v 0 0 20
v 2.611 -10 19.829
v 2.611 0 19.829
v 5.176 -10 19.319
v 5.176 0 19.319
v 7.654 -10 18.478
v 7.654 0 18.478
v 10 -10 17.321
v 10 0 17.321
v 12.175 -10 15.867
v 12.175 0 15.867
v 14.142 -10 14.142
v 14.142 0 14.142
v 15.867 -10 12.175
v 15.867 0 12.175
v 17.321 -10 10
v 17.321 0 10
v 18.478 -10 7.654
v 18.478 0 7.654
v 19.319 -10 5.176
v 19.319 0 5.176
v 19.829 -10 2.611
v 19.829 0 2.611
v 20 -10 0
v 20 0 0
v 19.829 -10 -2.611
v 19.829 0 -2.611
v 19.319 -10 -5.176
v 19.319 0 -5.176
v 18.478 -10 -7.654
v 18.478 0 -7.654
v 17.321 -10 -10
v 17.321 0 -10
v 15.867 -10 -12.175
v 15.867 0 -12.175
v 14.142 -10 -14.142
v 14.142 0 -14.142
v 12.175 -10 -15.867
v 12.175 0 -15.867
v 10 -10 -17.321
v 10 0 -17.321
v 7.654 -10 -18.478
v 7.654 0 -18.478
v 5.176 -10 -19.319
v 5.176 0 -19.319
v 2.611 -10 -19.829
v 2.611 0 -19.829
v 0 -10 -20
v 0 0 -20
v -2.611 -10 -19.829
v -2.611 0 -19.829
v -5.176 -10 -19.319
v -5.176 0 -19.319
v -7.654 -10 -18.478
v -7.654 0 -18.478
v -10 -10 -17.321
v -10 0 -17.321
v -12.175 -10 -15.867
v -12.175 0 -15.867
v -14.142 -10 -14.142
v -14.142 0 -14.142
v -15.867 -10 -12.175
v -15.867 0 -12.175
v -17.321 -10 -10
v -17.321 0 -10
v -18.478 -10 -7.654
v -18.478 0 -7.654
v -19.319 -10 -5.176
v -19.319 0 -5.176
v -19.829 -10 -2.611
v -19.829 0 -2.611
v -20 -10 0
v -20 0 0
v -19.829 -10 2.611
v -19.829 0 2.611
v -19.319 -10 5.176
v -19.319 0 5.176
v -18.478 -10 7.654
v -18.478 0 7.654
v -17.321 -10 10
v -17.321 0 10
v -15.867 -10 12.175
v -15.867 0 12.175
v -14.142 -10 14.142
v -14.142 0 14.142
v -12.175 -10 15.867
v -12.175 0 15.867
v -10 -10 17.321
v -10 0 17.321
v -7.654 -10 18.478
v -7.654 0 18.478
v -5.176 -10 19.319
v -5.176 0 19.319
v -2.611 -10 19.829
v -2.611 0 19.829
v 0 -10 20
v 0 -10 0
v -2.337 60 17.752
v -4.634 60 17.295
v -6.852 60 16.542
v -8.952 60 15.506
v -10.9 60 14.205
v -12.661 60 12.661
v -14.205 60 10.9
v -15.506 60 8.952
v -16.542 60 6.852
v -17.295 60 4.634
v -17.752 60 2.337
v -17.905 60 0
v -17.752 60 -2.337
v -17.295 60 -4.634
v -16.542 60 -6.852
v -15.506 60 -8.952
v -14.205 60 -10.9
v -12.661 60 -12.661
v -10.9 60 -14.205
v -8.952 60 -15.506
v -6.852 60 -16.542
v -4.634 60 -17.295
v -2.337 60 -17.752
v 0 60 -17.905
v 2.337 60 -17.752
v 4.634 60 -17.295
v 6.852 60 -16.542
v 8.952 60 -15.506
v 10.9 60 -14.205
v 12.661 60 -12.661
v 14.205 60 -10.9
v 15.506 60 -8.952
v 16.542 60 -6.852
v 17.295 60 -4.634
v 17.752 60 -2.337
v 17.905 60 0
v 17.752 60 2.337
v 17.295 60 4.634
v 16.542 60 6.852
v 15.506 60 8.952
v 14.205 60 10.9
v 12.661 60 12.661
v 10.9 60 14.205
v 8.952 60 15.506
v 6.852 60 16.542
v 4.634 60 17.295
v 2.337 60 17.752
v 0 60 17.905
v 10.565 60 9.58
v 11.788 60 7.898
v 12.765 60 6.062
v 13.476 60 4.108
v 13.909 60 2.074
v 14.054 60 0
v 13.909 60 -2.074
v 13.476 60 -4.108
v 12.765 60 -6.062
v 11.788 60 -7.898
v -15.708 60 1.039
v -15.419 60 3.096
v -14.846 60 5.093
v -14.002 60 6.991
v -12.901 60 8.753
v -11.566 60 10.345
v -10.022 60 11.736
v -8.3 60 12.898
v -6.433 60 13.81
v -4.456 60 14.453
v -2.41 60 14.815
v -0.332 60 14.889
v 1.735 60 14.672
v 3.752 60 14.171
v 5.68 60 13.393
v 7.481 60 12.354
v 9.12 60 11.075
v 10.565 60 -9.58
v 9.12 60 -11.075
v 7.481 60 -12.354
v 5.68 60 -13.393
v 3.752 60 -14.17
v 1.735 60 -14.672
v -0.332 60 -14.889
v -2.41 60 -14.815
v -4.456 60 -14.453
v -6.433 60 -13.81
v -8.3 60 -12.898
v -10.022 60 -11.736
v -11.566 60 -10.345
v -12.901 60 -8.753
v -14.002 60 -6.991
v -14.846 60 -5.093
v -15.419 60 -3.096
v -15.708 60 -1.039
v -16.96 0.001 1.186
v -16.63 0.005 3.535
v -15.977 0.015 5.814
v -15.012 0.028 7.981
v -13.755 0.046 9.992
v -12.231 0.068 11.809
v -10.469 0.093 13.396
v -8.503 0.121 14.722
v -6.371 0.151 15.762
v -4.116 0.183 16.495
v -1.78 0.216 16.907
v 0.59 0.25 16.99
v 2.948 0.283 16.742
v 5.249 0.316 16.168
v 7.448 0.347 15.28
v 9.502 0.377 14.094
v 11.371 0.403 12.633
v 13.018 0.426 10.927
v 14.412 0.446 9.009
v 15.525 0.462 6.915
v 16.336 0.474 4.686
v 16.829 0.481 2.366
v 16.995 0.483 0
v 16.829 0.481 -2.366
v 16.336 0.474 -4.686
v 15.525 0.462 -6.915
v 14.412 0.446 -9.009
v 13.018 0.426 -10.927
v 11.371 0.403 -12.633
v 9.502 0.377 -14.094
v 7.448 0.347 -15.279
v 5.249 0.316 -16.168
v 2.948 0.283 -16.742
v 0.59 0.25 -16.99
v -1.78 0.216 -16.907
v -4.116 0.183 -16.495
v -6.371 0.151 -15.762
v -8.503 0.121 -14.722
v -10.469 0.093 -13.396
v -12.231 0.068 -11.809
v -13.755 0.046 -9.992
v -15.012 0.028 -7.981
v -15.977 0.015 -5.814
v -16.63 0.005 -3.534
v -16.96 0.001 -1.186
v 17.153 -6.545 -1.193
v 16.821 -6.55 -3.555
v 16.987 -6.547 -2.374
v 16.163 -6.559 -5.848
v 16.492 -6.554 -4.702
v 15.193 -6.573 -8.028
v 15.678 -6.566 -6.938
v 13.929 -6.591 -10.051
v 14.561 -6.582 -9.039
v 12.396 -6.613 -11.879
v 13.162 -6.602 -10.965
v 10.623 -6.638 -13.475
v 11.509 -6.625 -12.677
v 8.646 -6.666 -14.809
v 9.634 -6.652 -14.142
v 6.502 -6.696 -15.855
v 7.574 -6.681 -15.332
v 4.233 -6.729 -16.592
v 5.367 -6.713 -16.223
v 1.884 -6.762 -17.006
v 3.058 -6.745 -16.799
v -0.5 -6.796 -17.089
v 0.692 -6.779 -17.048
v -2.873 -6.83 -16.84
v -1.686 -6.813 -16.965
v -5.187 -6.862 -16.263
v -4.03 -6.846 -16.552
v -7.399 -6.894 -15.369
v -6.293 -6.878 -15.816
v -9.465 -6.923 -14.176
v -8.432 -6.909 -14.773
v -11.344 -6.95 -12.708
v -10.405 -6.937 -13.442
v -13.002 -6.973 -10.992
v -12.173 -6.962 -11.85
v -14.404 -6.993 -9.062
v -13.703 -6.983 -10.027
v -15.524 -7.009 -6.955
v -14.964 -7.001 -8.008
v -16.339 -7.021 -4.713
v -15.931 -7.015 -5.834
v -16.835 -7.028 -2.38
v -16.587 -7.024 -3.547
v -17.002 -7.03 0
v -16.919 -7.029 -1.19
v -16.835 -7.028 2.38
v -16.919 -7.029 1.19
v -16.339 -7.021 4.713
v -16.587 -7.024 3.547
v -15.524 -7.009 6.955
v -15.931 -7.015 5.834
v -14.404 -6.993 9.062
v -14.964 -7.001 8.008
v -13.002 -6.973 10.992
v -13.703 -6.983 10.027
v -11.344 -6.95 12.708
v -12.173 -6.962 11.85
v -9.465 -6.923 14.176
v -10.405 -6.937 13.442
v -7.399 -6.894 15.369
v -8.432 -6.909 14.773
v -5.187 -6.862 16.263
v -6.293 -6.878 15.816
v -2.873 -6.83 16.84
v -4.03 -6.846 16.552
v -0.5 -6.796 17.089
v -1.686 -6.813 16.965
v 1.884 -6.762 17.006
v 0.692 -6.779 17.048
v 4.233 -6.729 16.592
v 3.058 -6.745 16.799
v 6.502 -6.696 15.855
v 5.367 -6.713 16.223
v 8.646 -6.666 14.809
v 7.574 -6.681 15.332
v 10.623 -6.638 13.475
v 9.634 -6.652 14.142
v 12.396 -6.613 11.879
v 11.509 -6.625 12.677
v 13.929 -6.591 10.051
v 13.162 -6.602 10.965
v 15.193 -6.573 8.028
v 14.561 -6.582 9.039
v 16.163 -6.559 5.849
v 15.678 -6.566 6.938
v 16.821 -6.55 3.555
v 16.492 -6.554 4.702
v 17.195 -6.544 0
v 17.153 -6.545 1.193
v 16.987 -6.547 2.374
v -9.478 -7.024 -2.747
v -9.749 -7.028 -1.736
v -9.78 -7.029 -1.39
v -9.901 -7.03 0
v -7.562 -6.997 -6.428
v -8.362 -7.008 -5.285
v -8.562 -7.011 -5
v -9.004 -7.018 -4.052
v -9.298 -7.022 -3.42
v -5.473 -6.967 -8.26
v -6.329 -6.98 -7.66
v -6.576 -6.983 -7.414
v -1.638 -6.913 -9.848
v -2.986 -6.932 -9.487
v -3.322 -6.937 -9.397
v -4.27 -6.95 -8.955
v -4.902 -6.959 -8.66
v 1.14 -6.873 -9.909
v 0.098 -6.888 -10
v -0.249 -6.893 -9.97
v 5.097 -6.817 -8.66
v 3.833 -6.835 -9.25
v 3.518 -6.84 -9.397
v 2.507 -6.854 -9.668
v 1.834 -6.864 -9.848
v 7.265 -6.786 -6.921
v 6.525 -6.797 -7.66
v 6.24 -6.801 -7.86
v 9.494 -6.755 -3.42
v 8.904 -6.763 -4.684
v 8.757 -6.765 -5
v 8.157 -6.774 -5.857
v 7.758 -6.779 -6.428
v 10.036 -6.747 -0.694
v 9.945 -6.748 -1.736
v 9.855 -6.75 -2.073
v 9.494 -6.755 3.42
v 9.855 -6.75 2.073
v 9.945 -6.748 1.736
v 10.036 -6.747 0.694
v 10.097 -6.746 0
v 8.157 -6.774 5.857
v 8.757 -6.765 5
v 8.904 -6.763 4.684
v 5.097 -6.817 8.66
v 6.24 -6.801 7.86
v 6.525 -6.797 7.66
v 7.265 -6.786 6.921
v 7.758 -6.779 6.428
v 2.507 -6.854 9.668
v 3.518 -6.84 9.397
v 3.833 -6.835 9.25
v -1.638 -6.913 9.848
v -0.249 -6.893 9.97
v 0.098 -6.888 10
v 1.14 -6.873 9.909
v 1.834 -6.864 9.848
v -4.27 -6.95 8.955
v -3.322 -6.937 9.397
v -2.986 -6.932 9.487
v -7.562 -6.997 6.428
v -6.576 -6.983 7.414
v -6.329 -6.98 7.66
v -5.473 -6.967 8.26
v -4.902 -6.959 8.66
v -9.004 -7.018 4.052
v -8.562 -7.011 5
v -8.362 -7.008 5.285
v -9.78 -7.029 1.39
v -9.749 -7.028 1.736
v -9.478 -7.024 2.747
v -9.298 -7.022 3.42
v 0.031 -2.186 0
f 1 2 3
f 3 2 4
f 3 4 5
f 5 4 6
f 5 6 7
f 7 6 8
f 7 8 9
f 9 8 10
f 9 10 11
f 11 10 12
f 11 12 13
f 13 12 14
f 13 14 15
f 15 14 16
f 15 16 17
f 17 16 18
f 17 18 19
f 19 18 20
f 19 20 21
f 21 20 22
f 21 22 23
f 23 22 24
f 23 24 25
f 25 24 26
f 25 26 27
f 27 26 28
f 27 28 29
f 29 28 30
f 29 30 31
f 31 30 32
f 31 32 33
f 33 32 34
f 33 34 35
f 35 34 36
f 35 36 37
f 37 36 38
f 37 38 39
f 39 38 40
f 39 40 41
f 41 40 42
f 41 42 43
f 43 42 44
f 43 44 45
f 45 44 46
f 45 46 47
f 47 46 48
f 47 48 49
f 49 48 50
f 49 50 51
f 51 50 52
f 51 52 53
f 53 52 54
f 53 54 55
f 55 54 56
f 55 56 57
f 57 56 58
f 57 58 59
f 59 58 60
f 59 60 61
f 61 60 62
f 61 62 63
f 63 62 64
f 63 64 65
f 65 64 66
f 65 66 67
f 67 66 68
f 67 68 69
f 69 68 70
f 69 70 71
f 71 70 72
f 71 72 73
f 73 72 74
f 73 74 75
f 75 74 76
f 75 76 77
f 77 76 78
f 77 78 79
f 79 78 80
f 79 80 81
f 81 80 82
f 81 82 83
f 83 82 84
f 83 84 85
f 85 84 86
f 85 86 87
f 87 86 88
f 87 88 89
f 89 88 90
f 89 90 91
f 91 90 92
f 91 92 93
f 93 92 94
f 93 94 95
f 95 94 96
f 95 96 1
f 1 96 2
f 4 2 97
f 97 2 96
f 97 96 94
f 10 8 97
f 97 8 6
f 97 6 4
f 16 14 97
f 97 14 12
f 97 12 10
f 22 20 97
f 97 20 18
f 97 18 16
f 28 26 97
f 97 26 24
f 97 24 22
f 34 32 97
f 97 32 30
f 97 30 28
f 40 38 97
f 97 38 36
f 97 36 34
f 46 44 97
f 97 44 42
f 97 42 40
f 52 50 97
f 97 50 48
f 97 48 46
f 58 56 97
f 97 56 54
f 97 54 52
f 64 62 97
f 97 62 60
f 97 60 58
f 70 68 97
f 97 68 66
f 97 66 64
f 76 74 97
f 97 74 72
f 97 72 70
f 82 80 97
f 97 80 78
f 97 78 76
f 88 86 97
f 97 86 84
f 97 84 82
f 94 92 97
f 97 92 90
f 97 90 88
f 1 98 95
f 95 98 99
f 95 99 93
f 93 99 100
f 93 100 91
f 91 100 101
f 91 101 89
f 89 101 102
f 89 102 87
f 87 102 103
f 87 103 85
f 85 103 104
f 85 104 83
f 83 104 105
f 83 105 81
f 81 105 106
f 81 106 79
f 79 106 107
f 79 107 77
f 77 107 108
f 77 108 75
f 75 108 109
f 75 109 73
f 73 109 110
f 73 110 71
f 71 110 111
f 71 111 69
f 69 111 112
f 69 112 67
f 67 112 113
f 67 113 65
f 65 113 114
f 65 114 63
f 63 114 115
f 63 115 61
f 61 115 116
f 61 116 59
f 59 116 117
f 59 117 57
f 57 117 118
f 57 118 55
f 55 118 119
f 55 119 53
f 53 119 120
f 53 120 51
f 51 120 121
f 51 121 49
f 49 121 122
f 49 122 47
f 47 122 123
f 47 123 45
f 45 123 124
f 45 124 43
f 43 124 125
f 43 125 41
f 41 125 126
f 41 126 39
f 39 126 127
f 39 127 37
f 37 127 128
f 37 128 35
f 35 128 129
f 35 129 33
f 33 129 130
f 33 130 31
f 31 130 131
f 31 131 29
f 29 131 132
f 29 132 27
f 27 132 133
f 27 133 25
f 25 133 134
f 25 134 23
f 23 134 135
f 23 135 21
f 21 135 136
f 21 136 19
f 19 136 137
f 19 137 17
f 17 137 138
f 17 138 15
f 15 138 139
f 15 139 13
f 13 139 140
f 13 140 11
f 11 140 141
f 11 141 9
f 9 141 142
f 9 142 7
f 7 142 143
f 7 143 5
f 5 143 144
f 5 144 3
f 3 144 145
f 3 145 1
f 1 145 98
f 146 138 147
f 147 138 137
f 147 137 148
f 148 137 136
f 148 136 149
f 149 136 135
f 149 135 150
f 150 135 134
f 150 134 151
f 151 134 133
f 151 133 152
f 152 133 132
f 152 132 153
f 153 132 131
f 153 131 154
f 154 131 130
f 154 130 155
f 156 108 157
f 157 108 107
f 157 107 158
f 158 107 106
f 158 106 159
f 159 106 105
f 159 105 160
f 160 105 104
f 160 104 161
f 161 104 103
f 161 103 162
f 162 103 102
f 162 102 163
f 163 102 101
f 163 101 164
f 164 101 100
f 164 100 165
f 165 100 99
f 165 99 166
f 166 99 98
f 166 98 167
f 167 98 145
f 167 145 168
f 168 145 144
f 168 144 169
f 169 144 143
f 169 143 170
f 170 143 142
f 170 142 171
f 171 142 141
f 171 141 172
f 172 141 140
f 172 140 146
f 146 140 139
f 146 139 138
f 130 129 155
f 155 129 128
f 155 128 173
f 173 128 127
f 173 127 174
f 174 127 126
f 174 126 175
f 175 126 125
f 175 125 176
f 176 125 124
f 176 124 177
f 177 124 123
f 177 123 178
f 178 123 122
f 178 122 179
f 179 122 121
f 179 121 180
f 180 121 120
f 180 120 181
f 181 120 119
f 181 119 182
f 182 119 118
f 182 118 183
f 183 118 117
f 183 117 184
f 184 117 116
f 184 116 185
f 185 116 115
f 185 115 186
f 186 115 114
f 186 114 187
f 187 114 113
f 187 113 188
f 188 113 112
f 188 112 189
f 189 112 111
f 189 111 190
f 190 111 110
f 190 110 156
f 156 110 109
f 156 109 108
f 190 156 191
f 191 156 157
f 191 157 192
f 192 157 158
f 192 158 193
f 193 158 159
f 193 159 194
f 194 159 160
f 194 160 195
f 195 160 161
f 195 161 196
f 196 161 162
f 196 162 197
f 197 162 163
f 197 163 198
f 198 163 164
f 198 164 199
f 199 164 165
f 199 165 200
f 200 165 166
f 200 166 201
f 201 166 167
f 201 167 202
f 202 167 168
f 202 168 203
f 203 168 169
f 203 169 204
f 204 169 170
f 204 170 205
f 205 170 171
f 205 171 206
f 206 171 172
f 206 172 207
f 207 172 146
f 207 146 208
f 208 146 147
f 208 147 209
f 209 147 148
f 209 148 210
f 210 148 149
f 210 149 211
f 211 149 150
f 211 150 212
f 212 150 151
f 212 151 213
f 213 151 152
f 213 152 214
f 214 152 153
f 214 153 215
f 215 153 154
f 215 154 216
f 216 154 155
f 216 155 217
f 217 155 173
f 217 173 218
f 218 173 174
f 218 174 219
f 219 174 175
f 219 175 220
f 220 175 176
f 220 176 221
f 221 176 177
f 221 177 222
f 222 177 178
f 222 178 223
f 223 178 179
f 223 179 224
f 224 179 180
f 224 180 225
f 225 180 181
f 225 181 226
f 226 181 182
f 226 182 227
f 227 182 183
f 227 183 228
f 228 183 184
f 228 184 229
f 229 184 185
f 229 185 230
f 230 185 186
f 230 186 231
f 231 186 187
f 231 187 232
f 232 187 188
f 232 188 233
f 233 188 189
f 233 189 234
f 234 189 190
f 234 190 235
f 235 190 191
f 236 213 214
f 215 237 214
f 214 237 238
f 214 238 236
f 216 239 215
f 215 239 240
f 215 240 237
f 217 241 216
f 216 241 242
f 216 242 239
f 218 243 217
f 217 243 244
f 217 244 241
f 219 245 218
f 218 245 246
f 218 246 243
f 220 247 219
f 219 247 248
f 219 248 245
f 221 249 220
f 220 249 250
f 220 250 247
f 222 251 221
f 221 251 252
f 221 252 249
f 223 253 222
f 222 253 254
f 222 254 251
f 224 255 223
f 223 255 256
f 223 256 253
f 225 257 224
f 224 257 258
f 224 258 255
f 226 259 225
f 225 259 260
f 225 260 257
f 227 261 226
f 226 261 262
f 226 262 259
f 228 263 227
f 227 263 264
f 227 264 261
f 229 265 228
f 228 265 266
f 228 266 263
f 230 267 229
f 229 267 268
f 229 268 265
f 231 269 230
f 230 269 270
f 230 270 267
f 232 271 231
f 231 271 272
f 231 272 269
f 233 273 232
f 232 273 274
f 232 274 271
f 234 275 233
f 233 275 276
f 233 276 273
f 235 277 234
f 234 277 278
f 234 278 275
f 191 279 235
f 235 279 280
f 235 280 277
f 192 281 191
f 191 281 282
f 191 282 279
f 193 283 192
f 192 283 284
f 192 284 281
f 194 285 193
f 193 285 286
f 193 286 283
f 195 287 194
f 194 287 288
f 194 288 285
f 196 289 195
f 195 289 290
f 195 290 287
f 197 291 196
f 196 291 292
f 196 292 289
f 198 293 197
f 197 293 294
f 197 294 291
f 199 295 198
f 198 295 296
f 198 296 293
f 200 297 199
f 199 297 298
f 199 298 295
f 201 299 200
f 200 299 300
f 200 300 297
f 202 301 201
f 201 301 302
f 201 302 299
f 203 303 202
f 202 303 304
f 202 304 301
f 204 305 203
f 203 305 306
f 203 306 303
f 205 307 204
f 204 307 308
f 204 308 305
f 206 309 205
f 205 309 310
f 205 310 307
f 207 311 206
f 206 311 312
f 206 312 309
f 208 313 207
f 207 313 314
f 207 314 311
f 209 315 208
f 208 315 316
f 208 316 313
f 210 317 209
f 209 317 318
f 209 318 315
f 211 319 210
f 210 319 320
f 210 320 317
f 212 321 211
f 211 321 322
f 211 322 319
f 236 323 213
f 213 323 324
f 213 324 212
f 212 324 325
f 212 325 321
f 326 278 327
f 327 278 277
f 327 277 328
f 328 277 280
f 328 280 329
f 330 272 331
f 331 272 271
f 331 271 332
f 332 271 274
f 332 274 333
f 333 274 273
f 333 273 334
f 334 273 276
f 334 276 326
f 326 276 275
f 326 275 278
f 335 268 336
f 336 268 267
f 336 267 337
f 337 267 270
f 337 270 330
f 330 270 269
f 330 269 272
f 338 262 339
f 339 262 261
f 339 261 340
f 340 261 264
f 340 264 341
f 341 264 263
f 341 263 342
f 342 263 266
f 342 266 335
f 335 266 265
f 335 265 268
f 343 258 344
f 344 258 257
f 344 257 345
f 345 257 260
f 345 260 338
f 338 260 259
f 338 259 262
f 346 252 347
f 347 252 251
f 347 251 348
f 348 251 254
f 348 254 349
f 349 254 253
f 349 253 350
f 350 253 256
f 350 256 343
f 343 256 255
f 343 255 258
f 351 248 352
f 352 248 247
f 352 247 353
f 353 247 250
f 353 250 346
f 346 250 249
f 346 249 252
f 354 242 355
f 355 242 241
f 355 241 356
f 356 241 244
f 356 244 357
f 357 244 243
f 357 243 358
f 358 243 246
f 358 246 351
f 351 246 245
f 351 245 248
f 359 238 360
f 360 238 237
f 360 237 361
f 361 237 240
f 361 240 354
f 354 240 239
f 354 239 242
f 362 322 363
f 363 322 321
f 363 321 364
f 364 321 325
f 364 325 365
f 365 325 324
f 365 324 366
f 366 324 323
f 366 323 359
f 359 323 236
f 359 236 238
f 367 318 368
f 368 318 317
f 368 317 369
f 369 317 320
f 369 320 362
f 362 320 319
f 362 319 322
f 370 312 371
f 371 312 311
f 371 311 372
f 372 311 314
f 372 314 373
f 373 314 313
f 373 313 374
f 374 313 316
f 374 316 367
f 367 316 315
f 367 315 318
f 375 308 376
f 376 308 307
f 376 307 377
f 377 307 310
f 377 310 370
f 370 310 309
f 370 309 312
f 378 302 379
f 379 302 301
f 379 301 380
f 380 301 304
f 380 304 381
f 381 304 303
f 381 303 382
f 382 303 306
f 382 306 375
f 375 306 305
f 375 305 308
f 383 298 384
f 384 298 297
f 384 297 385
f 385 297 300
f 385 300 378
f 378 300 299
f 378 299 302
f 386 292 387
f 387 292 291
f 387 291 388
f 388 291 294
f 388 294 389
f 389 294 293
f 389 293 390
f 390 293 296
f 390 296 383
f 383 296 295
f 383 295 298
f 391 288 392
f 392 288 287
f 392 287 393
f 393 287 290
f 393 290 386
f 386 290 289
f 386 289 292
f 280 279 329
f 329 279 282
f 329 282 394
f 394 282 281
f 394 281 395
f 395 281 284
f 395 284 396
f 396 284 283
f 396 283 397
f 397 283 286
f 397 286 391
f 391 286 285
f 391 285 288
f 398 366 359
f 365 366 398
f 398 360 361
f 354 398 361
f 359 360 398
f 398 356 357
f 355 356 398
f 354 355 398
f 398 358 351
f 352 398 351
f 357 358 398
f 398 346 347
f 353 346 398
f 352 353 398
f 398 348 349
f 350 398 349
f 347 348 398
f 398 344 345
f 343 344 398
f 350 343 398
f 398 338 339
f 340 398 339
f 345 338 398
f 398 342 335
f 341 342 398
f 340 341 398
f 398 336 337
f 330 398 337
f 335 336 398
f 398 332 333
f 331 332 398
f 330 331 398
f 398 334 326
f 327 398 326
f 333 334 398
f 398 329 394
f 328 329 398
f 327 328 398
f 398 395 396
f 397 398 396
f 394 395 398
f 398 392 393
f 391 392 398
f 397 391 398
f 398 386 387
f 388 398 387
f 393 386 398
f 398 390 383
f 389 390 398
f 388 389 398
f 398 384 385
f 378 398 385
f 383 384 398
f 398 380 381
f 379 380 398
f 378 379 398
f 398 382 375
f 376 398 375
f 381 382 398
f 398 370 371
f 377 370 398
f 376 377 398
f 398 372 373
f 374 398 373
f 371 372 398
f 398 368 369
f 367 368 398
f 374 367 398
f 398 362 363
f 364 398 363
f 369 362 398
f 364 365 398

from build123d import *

# Parameters (mm, degrees)
SKETCH_1_R                = 20
EXTRUDE_1_DEPTH           = 60
EXTRUDE_1_TAPER           = 2
EXTRUDE_1_OTHER_WAY_DEPTH = 10


with BuildPart() as part:
    # Эскиз1 → Бобышка-Вытянуть1 (new body)
    with BuildSketch(Plane(origin=(0, 0, 0), x_dir=(1, 0, 0), z_dir=(0, 1, 0))):
        with Locations(Location((0, 0, 0), (0, 0, 270))):
            Circle(SKETCH_1_R)
    extrude(amount=EXTRUDE_1_DEPTH, taper=EXTRUDE_1_TAPER)

    # Эскиз1 → Бобышка-Вытянуть1 other way (add)
    with BuildSketch(Plane(origin=(0, 0, 0), x_dir=(1, 0, 0), z_dir=(0, 1, 0))):
        with Locations(Location((0, 0, 0), (0, 0, 270))):
            Circle(SKETCH_1_R)
    extrude(amount=-EXTRUDE_1_OTHER_WAY_DEPTH)

    # Эскиз3 → Вырез-Повернуть1 (revolve, cut)
    with BuildSketch(Plane.XY, mode=Mode.PRIVATE) as cut_revolve_1_sk:
        Polygon((-15.743928258, 60), (-17.001715566, 0), (-17.001715566, -7.030322503), (-9.901128706, -7.030322503), (0.031057723, -2.186071506), (-0.852425624, 60), align=None)
    revolve(cut_revolve_1_sk.sketch.rotate(Axis((0.031057723, -2.186071506, 0), (-0.014205660156622533, 0.9998990945187992, 0)), 180), axis=Axis((0.031057723, -2.186071506, 0), (-0.014205660156622533, 0.9998990945187992, 0)), mode=Mode.SUBTRACT)


solid = part.part
